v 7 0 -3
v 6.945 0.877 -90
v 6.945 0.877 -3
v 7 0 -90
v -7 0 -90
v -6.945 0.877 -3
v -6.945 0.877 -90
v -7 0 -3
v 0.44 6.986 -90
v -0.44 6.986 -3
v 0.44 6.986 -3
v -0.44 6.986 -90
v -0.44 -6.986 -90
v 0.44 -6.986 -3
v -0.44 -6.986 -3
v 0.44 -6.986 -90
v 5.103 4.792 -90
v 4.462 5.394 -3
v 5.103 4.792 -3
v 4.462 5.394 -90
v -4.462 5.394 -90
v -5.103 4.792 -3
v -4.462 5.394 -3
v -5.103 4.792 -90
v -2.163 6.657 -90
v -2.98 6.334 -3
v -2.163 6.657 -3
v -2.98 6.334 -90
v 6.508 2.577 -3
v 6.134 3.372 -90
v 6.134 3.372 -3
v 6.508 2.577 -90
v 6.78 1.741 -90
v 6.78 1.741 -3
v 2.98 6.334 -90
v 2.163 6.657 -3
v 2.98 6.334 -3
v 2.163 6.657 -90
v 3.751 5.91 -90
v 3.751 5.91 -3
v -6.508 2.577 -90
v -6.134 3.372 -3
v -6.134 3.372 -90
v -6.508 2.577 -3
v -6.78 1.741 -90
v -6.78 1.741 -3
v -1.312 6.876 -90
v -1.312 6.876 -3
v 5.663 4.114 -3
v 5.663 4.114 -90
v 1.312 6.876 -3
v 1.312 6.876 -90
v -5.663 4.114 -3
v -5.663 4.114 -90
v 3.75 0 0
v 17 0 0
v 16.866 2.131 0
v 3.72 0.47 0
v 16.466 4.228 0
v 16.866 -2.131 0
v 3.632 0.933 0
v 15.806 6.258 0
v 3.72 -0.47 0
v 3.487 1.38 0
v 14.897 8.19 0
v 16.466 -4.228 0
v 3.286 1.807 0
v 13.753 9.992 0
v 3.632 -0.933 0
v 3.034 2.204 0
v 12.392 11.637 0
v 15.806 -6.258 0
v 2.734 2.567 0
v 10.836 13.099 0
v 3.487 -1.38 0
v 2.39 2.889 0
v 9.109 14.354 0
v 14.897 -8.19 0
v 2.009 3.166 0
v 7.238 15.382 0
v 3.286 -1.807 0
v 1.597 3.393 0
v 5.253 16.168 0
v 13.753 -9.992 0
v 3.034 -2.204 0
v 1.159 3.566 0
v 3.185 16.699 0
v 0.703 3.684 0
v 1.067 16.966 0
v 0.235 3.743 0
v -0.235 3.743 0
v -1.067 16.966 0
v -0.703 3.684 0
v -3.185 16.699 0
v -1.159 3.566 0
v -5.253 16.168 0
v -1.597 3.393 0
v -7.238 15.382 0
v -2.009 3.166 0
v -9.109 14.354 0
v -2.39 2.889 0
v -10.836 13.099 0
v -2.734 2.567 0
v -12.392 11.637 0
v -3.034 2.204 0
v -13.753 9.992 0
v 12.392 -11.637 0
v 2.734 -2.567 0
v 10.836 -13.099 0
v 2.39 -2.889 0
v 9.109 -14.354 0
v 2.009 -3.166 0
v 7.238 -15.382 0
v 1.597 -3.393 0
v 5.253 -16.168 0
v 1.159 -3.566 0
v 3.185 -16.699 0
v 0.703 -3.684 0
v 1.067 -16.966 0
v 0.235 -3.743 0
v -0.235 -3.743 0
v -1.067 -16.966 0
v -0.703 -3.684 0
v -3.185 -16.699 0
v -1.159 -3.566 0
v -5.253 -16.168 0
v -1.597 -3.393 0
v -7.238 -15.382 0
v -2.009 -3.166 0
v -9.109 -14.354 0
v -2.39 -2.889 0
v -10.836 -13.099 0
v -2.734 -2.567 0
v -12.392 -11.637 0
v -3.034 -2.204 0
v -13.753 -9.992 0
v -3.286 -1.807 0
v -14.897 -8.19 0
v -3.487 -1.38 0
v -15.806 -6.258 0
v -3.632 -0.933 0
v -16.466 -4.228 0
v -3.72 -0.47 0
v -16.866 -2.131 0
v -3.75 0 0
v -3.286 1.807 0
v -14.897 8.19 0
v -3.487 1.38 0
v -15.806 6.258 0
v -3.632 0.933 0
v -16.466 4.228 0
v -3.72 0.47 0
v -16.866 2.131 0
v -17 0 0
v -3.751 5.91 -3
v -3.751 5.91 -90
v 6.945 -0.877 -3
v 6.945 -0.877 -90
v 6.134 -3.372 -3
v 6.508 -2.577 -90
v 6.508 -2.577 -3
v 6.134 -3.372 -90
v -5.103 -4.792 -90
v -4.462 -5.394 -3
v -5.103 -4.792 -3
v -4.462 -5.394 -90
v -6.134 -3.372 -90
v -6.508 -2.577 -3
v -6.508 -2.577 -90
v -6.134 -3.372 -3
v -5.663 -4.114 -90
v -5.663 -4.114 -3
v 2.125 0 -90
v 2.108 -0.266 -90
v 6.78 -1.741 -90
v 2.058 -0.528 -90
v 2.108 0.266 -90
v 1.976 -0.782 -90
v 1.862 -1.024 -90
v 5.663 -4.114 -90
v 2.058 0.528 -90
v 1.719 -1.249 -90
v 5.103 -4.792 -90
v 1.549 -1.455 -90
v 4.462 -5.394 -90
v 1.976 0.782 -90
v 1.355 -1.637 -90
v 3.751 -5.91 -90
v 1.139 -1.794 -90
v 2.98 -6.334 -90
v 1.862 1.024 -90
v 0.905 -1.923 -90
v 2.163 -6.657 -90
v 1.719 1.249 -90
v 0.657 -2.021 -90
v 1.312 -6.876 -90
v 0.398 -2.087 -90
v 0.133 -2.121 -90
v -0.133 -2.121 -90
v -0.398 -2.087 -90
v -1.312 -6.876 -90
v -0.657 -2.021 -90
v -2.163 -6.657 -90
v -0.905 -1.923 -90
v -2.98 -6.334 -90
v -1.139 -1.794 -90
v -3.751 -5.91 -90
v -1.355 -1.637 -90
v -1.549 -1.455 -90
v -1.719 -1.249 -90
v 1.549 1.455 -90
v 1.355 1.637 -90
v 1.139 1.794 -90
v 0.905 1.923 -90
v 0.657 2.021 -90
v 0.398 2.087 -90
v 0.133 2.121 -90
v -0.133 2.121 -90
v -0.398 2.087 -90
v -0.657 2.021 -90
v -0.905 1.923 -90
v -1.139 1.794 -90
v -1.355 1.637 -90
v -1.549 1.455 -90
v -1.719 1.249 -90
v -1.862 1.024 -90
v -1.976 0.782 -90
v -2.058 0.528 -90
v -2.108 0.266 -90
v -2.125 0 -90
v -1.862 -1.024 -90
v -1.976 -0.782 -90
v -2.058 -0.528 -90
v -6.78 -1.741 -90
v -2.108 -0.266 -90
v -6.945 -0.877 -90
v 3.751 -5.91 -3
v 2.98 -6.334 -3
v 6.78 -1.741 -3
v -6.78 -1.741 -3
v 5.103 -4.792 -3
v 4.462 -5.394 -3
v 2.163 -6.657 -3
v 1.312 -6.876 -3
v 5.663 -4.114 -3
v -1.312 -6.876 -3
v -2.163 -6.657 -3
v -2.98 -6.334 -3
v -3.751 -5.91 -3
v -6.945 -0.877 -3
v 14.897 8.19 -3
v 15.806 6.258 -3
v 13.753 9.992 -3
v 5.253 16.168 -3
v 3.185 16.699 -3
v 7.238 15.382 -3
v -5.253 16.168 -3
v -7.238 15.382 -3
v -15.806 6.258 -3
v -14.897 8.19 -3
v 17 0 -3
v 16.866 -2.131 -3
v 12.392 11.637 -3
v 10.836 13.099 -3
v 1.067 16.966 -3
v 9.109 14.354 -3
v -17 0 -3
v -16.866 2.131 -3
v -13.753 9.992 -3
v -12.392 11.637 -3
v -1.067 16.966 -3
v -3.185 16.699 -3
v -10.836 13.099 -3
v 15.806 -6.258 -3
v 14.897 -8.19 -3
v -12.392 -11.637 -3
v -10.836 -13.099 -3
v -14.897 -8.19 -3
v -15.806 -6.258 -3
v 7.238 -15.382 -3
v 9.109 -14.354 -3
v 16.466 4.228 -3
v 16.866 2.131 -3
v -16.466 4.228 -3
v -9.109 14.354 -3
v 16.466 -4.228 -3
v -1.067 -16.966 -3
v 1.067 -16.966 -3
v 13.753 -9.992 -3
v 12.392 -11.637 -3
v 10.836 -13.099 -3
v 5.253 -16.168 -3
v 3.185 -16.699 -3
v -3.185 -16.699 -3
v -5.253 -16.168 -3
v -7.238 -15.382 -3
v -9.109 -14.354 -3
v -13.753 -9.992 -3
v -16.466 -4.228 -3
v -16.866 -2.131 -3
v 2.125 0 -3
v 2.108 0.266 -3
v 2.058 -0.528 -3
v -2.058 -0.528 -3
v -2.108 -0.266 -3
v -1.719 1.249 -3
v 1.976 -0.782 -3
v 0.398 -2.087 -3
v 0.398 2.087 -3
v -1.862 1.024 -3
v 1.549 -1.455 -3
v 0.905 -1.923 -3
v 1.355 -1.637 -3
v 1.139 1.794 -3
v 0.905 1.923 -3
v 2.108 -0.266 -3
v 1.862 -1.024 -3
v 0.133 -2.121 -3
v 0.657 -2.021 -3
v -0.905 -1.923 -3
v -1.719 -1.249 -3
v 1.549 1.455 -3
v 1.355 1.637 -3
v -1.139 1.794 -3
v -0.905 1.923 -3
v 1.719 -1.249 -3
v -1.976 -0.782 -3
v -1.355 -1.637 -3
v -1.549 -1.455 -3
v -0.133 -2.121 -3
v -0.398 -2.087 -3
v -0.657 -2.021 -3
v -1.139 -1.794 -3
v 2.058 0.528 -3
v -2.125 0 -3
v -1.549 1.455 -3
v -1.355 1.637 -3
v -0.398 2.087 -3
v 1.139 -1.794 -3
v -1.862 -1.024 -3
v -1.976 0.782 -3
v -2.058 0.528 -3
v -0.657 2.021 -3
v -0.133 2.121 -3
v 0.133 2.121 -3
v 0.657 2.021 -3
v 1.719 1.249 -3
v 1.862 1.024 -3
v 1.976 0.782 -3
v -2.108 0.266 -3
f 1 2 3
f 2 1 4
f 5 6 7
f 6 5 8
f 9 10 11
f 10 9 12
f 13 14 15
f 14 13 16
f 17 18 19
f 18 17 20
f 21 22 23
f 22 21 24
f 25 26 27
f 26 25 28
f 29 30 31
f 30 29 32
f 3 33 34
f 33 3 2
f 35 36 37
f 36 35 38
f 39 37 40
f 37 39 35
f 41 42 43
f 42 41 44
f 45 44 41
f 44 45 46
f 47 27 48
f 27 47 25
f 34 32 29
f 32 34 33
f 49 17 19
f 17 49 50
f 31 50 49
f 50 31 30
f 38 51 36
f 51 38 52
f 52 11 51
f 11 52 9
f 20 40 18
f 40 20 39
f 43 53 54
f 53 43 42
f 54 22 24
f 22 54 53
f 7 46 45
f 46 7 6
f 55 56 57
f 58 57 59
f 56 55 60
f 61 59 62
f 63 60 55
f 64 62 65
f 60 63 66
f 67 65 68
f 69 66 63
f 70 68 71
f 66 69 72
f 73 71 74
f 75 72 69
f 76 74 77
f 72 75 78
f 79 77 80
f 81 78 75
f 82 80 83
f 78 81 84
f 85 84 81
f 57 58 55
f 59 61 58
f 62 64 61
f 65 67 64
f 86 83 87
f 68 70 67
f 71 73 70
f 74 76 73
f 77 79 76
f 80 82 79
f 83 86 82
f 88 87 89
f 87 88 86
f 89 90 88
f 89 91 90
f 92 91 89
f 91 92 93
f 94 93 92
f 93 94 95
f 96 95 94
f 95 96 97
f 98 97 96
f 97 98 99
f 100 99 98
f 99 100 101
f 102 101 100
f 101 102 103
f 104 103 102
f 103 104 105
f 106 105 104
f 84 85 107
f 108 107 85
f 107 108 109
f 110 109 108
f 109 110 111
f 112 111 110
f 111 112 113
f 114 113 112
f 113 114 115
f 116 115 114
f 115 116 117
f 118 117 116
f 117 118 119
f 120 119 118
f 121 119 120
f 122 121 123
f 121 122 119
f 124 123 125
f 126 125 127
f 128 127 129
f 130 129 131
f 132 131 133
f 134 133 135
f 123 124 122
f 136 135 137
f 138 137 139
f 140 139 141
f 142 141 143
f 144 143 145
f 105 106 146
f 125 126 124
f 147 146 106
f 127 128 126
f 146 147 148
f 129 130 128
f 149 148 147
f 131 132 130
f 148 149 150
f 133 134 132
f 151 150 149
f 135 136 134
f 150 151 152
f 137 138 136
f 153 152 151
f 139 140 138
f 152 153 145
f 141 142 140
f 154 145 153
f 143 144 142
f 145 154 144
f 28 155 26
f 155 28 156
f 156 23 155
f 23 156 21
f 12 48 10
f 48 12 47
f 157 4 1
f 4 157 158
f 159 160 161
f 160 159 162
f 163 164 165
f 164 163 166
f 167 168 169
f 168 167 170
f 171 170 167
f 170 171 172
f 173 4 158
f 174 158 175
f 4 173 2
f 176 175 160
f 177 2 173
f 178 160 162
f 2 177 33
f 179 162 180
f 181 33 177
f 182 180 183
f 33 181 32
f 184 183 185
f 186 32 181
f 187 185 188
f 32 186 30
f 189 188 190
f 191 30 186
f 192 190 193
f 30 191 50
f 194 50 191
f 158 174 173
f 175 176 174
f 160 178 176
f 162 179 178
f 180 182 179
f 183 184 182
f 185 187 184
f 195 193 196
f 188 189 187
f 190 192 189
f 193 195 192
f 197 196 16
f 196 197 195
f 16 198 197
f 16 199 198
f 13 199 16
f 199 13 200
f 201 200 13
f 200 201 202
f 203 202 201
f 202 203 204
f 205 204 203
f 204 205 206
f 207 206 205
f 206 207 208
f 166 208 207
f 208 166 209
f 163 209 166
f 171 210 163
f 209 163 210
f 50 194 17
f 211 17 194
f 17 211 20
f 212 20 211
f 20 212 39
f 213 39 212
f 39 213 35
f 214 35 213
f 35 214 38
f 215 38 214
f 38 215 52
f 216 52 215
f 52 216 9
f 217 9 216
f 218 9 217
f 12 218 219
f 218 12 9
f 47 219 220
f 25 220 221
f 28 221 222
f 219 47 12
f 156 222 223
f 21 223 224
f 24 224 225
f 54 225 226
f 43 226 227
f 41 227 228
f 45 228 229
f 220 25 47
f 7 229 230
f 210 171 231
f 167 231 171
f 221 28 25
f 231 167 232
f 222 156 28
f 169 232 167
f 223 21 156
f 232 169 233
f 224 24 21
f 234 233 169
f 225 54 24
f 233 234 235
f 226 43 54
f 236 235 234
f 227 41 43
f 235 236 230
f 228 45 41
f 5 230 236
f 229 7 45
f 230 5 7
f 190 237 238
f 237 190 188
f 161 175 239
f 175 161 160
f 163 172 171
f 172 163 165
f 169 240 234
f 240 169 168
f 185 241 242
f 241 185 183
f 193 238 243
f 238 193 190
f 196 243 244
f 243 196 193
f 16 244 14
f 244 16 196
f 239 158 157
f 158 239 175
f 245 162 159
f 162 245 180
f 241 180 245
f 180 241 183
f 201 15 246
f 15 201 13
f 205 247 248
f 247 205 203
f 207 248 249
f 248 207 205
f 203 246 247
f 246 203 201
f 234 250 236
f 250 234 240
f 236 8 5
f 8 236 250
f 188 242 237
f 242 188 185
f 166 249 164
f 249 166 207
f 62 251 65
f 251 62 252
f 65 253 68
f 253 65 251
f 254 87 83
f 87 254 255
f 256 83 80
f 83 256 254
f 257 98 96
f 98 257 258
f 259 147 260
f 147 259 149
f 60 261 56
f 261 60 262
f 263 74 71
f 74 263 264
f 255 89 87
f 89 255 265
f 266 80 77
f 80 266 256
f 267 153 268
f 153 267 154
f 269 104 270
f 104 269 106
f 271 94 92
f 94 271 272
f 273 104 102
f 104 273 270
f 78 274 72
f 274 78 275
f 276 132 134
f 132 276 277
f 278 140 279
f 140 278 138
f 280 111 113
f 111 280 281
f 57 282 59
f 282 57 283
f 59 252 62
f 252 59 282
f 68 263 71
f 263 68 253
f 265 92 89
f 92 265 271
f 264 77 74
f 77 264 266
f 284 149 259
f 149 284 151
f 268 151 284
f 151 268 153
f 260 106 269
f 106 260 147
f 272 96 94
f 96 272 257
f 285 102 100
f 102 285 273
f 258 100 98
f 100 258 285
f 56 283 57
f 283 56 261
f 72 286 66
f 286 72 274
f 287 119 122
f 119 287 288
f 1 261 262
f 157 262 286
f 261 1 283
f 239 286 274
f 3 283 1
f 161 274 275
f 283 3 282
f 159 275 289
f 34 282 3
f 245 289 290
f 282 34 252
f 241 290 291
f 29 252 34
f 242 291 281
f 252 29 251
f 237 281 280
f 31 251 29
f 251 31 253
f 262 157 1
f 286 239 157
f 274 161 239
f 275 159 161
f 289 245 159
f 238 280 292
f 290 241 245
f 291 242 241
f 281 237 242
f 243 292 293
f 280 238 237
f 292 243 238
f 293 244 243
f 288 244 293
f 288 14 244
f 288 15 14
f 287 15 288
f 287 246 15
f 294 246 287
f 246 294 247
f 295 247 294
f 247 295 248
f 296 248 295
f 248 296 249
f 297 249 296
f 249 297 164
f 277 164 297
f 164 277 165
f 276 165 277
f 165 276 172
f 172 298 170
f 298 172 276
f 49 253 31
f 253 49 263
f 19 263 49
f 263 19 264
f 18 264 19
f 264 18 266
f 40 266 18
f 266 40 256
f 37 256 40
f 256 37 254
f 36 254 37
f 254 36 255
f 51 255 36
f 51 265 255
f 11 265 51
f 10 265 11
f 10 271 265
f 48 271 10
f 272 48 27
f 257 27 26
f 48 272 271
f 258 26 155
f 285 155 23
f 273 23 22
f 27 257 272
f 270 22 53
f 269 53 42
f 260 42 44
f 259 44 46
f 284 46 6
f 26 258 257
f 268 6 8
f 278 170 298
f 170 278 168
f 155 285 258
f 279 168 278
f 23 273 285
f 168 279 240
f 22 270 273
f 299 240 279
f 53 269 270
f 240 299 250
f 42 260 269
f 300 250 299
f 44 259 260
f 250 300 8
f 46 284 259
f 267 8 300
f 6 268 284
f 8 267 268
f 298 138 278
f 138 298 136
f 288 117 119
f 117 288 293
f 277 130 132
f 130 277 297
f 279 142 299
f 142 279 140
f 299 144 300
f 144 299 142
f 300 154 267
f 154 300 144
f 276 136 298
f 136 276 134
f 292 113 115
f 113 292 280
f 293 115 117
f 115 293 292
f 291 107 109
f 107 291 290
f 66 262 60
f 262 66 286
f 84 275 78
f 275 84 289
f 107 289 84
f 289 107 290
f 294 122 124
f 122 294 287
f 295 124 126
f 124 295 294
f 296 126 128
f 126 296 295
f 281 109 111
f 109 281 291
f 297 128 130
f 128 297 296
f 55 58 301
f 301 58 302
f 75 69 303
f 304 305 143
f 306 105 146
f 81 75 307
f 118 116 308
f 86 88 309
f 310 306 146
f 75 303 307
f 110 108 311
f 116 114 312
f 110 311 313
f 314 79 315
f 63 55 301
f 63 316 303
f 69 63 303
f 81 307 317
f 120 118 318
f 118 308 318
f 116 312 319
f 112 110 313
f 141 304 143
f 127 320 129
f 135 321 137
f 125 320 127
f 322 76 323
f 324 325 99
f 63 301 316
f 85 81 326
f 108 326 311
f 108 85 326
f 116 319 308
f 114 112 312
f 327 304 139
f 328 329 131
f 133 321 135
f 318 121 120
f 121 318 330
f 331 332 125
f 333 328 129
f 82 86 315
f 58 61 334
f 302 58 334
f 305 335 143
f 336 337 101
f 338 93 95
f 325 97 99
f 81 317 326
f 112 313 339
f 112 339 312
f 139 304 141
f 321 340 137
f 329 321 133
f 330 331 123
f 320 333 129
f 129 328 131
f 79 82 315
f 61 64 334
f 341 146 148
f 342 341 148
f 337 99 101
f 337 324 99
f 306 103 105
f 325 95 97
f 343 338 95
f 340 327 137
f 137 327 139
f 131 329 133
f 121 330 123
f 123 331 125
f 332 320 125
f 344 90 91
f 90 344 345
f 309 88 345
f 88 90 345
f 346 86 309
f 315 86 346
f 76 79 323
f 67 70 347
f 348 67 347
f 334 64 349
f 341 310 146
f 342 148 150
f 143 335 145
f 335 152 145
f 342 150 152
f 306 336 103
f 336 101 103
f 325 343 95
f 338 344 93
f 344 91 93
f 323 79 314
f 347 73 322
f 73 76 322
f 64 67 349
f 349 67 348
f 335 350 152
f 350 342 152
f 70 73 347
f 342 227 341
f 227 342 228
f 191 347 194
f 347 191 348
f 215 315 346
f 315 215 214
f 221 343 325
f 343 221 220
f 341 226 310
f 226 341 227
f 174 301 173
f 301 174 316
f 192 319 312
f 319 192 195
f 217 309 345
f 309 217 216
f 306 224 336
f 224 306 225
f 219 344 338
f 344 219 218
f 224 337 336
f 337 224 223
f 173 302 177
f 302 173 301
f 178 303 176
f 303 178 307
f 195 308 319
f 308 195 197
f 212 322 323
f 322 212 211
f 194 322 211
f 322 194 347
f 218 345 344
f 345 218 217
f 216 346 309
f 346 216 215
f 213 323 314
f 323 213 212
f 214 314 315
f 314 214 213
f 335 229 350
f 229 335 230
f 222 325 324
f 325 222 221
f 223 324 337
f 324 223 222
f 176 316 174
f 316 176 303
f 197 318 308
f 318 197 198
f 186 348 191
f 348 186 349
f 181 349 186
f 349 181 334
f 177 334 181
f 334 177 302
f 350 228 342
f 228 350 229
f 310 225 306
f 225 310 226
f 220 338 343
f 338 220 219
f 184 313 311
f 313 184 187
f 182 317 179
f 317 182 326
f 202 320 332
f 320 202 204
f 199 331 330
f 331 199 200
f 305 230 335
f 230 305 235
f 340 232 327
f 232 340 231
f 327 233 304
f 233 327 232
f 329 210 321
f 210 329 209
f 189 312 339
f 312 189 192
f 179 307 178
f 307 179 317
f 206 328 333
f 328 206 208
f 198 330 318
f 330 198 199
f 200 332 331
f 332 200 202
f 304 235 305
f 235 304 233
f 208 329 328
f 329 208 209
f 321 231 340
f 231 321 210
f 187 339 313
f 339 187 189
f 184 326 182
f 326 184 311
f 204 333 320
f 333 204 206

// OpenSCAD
$fn = 50;


difference() {
	union() {
		translate(v = [0, 0, -90.0000000000]) {
			cylinder(h = 90, r = 7.0000000000);
		}
		translate(v = [0, 0, -3.0000000000]) {
			cylinder(h = 3, r = 17.0000000000);
		}
	}
	union() {
		translate(v = [0, 0, 0]) {
			rotate(a = [0, 0, 0]) {
				difference() {
					union() {
						#translate(v = [0, 0, -90.0000000000]) {
							cylinder(h = 90, r = 2.0000000000);
						}
						#translate(v = [0, 0, -3]) {
							cylinder(h = 3, r = 7.0000000000, r1 = 2.1250000000, r2 = 3.7500000000);
						}
						#translate(v = [0, 0, -90.0000000000]) {
							cylinder(h = 90, r = 2.1250000000);
						}
						#translate(v = [0, 0, -90.0000000000]) {
							cylinder(h = 90, r = 2.0000000000);
						}
					}
					union();
				}
			}
		}
	}
}
